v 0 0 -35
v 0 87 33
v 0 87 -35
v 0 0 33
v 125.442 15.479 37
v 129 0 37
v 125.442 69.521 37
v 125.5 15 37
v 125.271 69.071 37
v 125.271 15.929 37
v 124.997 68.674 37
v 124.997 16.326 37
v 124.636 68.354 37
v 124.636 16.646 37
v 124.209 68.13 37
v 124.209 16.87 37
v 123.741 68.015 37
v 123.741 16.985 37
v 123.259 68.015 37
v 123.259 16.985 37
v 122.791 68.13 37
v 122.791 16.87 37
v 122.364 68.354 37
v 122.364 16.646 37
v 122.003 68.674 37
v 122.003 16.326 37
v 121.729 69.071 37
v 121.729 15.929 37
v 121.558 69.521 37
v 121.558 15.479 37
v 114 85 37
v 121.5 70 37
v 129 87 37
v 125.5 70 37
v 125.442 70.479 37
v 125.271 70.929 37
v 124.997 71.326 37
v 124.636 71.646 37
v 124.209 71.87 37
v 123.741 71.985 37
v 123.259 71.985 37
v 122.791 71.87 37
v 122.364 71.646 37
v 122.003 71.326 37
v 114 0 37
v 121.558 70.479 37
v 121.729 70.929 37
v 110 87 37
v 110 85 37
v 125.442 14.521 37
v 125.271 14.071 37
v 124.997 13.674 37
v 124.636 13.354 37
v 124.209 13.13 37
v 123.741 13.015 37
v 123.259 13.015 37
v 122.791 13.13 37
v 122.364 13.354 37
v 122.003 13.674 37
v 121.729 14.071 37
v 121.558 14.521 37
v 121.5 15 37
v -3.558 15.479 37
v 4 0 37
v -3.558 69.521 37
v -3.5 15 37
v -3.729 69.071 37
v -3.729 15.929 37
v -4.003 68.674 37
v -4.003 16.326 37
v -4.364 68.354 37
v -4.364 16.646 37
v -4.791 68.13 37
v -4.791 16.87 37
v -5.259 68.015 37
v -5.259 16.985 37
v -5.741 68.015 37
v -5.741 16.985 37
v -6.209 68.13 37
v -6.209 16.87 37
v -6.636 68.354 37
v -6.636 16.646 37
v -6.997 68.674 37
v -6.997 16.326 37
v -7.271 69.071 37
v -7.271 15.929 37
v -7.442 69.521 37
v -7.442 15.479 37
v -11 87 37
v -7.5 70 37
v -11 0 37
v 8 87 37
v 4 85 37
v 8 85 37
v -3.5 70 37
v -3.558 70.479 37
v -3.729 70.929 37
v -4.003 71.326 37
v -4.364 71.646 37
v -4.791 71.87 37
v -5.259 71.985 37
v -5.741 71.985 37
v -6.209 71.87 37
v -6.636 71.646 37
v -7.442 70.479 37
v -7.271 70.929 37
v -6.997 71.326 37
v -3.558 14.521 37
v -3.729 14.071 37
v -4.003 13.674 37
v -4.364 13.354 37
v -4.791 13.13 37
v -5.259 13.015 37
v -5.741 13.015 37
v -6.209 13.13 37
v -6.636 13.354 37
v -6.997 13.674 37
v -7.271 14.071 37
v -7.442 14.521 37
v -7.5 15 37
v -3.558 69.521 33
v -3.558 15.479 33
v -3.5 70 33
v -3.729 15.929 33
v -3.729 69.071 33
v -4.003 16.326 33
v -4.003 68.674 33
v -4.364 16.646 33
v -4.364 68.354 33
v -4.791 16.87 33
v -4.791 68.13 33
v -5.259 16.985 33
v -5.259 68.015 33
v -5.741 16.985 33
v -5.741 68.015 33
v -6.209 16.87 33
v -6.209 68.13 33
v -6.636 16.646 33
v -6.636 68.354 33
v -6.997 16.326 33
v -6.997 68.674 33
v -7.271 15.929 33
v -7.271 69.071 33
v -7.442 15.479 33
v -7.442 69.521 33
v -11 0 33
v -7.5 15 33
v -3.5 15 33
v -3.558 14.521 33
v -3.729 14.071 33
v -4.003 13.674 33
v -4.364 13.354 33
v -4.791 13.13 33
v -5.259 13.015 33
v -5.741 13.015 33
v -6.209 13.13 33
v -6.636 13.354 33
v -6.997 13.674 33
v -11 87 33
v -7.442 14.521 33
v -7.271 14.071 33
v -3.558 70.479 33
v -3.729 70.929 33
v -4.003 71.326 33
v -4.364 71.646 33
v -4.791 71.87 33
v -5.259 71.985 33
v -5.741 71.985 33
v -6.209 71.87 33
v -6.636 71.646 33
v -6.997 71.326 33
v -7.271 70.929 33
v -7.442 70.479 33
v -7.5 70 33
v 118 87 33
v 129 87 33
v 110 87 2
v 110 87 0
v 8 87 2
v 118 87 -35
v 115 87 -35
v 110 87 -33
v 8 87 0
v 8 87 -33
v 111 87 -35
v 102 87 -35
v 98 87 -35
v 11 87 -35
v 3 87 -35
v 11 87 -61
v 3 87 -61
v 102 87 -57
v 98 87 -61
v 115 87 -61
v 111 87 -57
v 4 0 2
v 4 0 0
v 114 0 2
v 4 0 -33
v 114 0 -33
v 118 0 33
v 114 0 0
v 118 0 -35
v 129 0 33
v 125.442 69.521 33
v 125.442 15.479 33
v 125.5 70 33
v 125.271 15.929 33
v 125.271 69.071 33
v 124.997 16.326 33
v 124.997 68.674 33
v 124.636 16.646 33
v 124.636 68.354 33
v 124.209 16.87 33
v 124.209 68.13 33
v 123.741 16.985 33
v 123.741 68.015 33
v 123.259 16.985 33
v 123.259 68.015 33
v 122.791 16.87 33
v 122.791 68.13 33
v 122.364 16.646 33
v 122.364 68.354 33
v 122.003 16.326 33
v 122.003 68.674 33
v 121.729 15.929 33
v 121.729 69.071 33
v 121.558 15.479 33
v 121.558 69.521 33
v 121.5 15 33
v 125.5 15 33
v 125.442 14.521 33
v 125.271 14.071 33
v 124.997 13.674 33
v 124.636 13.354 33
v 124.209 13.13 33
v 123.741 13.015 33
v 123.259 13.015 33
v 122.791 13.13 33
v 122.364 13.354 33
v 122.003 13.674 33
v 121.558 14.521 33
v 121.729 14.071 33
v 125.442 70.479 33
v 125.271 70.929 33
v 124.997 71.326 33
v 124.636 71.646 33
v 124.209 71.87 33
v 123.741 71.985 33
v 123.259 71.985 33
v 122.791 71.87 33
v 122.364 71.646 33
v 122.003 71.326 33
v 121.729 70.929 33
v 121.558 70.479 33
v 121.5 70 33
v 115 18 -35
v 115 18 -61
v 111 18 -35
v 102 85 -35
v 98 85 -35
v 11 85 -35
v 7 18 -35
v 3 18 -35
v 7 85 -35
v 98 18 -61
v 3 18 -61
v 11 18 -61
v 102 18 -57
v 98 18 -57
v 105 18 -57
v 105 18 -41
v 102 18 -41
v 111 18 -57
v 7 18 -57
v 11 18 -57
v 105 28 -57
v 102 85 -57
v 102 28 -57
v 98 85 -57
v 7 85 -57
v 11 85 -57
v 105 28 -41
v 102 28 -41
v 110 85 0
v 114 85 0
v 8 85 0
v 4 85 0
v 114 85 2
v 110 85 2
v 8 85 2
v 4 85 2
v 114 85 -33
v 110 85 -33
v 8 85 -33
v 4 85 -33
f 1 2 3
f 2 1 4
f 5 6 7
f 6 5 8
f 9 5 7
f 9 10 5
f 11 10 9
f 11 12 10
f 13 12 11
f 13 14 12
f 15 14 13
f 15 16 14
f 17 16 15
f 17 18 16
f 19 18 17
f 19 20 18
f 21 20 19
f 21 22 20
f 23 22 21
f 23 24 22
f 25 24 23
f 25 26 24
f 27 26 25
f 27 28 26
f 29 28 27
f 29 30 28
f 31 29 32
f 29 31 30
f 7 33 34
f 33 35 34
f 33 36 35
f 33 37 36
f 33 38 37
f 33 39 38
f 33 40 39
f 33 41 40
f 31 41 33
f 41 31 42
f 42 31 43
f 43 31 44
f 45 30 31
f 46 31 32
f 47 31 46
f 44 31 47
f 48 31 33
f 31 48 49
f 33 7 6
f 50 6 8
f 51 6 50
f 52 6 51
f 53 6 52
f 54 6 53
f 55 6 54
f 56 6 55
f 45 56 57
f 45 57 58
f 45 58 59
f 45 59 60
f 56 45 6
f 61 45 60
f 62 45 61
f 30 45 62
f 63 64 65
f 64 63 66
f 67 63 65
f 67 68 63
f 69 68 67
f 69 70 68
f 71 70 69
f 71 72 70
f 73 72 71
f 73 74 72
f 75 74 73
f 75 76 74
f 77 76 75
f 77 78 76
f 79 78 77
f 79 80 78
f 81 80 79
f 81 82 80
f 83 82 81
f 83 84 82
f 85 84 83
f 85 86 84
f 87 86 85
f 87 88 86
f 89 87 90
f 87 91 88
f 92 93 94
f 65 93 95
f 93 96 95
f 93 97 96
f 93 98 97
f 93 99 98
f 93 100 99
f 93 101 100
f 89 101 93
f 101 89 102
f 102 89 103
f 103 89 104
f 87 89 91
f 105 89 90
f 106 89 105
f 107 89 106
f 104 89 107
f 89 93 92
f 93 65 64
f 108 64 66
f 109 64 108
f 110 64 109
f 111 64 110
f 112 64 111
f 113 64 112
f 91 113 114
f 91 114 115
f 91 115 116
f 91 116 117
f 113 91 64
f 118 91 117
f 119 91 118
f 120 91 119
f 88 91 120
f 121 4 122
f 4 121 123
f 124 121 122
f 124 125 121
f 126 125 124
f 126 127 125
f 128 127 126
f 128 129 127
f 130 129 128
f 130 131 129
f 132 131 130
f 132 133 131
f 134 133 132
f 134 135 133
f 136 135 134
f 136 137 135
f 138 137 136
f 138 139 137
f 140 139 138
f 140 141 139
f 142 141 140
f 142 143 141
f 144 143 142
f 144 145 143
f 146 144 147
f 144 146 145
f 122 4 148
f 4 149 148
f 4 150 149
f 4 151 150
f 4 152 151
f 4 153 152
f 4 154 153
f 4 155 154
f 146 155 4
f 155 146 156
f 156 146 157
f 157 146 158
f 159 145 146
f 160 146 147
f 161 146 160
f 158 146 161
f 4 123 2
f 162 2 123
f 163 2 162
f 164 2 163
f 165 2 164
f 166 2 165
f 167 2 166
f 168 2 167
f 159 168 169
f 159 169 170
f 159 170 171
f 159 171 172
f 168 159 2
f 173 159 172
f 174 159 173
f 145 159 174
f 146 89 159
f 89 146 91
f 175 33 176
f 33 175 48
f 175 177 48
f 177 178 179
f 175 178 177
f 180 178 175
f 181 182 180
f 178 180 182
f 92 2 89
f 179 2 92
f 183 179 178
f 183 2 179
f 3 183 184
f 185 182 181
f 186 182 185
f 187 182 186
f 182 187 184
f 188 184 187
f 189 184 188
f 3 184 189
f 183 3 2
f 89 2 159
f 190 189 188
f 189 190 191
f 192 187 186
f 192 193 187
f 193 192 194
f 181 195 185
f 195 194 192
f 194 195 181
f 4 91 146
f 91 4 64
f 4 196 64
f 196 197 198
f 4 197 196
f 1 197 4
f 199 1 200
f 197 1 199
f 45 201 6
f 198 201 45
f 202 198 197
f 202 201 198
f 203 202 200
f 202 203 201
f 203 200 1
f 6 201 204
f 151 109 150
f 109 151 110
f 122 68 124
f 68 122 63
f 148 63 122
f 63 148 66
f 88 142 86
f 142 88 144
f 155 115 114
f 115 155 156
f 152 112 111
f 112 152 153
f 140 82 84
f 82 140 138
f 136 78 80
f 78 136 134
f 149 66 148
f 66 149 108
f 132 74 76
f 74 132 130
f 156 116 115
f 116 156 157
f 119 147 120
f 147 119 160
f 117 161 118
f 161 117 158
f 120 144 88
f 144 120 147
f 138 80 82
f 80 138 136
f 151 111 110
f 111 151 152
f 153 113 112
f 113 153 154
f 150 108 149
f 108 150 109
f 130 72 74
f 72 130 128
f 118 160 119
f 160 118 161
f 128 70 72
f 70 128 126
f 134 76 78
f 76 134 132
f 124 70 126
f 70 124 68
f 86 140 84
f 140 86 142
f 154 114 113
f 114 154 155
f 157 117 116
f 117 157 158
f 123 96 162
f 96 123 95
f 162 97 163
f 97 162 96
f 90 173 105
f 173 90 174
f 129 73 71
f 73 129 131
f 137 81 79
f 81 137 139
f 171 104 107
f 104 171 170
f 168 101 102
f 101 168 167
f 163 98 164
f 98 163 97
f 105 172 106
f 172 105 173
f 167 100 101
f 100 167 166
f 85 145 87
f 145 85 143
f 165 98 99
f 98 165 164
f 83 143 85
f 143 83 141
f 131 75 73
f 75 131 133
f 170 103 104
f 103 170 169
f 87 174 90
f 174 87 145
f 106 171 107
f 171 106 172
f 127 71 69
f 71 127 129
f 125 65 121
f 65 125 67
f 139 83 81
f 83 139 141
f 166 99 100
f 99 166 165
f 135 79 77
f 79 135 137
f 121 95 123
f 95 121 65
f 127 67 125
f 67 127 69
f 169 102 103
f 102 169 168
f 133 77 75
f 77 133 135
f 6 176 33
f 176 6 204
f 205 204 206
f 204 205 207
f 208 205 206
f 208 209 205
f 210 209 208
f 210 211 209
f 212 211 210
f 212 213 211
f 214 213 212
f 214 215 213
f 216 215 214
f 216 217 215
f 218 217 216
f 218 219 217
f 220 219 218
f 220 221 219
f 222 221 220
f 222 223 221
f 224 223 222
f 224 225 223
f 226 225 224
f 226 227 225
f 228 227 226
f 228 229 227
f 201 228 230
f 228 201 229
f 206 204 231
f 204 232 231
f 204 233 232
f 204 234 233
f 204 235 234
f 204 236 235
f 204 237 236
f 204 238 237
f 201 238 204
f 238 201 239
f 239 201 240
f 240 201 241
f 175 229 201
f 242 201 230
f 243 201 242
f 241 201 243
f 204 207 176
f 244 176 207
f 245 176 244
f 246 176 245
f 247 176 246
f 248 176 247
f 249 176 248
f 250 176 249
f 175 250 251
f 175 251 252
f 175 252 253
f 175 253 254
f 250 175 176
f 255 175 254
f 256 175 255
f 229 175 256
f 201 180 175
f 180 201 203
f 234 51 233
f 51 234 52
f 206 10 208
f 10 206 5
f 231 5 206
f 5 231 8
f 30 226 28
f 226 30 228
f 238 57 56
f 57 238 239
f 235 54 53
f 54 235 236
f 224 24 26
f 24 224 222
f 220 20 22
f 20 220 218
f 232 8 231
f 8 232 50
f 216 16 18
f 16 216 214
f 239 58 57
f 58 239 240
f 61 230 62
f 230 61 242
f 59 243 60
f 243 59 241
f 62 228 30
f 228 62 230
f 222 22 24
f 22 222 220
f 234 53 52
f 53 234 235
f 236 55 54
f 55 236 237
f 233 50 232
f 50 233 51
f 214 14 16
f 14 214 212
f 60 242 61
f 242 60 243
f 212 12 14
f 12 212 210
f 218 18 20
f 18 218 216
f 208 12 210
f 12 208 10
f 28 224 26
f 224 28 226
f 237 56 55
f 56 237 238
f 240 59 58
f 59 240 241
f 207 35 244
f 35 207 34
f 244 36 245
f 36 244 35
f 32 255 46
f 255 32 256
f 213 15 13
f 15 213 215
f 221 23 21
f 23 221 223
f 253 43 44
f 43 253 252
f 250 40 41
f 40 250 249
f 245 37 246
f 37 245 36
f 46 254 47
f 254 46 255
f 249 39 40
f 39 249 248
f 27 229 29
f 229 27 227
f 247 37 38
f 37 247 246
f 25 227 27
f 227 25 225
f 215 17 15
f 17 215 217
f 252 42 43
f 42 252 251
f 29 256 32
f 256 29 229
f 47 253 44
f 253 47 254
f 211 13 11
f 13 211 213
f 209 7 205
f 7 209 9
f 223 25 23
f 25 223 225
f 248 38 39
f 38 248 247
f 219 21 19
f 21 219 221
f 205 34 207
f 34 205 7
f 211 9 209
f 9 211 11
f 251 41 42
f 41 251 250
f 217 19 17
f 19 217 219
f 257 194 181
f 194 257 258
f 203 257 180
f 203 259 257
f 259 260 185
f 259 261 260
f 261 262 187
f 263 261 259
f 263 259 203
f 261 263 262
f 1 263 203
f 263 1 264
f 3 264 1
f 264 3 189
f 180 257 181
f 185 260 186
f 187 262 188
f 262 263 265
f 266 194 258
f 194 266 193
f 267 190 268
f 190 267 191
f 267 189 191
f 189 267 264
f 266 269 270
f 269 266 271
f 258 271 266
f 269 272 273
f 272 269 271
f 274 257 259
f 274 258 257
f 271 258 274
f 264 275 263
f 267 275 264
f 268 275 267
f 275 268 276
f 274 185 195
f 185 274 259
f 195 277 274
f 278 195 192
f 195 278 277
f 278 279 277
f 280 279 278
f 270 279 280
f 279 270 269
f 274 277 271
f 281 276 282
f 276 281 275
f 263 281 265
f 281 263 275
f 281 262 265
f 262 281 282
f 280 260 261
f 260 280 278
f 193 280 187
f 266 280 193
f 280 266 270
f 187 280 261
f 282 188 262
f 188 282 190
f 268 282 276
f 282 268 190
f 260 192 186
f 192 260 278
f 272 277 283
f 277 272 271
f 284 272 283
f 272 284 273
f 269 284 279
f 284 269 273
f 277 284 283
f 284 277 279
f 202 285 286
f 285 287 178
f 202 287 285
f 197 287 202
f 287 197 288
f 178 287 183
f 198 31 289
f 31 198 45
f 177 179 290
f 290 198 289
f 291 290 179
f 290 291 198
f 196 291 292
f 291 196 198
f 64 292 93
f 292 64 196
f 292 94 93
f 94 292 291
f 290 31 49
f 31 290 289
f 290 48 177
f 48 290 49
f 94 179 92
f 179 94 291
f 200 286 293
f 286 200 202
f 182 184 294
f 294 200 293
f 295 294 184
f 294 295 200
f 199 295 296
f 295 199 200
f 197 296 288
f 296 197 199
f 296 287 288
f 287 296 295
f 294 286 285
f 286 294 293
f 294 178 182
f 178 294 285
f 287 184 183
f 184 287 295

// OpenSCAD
$fa = 1;
$fs = 0.5;

grosor_exterior = 4;
grosor_interior = 2;

ancho_tope_fondo = 4;
prof_tope_fondo = 2;

ancho_ampli = 110;
prof_ampli = 85;
alto_ampli = 35;

difference() {
    cube([ancho_ampli + grosor_exterior * 2, prof_ampli + prof_tope_fondo, alto_ampli + grosor_interior]);
    
    translate([grosor_exterior, 0, grosor_interior]){
        #cube([ancho_ampli,prof_ampli,alto_ampli]);
    }
    
    translate([grosor_exterior + ancho_tope_fondo, prof_ampli, grosor_interior]) {
        #cube([ancho_ampli - ancho_tope_fondo * 2, prof_tope_fondo, alto_ampli]);
    }
}

ancho_sujeccion = 11;

diametro_tornillo = 4;

translate([-ancho_sujeccion, 0, alto_ampli - (grosor_exterior - grosor_interior)]) {
    difference() {
        cube([ancho_sujeccion, prof_ampli + prof_tope_fondo , grosor_exterior]);
        
        translate([ancho_sujeccion/2, 15, 0]) {
            #cylinder(h=grosor_exterior + 3,r=diametro_tornillo/2);
        }
        
        translate([ancho_sujeccion/2, prof_ampli - 15, 0]) {
            #cylinder(h=grosor_exterior + 3,r=diametro_tornillo/2);
        }
    }
}

translate([ancho_ampli + grosor_exterior * 2, 0 , alto_ampli - (grosor_exterior - grosor_interior)]) {
    difference() {
        cube([ancho_sujeccion, prof_ampli + prof_tope_fondo, grosor_exterior]);
        
        translate([ancho_sujeccion/2, 15, 0]) {
            #cylinder(h=grosor_exterior + 3,r=diametro_tornillo/2);
        }
        
        translate([ancho_sujeccion/2, prof_ampli - 15, 0]) {
            #cylinder(h=grosor_exterior + 3,r=diametro_tornillo/2);
        }
    }
}



ancho_dac = 110;
prof_dac = 85;
alto_dac = 33;

translate([0,0, -alto_dac - grosor_interior]){
    difference() {
        cube([ancho_dac + grosor_exterior * 2, prof_dac + prof_tope_fondo, alto_dac + grosor_interior]);
        
        translate([grosor_exterior, 0, grosor_interior]){
            #cube([ancho_dac, prof_dac, alto_dac]);
        }
        
        translate([grosor_exterior + ancho_tope_fondo, prof_dac, grosor_interior]) {
            #cube([ancho_dac - ancho_tope_fondo * 2, prof_tope_fondo, alto_dac]);
        }
    }
}

ancho_switch = 95;
prof_switch = 67;
alto_switch = 22;

ancho_conector_cable = 9;
d_cable = 6;

translate([(ancho_dac - (ancho_switch + ancho_conector_cable)) / 2, prof_dac - prof_switch, -alto_dac - alto_switch - grosor_interior - grosor_exterior]) {
    
    difference() {
        
        cube([(ancho_switch + ancho_conector_cable) + grosor_exterior * 2, prof_switch + prof_tope_fondo, alto_switch + grosor_exterior]);
        
        translate([grosor_exterior, 0, grosor_exterior]) {
            #cube([ancho_switch + ancho_conector_cable, prof_switch, alto_switch]);
        }
        
        translate([grosor_exterior + ancho_tope_fondo, 0, 0]) {
            #cube([ancho_switch - ancho_tope_fondo * 2, prof_switch + prof_tope_fondo, alto_switch + grosor_exterior]);
        }
        
        translate([grosor_exterior + ancho_switch, prof_switch, grosor_exterior]) {
            #cube([ancho_conector_cable, prof_tope_fondo, alto_switch]);
        }
    }
    
    translate([grosor_exterior + ancho_switch, 0, grosor_exterior]) {
        cube([ancho_conector_cable - d_cable, 10, alto_switch - d_cable]);
    }
}

//translate([((ancho_dac - (ancho_switch + ancho_conector_cable)) / 2) + 4,-1,-65])
//cube([95, 10, 10]);
